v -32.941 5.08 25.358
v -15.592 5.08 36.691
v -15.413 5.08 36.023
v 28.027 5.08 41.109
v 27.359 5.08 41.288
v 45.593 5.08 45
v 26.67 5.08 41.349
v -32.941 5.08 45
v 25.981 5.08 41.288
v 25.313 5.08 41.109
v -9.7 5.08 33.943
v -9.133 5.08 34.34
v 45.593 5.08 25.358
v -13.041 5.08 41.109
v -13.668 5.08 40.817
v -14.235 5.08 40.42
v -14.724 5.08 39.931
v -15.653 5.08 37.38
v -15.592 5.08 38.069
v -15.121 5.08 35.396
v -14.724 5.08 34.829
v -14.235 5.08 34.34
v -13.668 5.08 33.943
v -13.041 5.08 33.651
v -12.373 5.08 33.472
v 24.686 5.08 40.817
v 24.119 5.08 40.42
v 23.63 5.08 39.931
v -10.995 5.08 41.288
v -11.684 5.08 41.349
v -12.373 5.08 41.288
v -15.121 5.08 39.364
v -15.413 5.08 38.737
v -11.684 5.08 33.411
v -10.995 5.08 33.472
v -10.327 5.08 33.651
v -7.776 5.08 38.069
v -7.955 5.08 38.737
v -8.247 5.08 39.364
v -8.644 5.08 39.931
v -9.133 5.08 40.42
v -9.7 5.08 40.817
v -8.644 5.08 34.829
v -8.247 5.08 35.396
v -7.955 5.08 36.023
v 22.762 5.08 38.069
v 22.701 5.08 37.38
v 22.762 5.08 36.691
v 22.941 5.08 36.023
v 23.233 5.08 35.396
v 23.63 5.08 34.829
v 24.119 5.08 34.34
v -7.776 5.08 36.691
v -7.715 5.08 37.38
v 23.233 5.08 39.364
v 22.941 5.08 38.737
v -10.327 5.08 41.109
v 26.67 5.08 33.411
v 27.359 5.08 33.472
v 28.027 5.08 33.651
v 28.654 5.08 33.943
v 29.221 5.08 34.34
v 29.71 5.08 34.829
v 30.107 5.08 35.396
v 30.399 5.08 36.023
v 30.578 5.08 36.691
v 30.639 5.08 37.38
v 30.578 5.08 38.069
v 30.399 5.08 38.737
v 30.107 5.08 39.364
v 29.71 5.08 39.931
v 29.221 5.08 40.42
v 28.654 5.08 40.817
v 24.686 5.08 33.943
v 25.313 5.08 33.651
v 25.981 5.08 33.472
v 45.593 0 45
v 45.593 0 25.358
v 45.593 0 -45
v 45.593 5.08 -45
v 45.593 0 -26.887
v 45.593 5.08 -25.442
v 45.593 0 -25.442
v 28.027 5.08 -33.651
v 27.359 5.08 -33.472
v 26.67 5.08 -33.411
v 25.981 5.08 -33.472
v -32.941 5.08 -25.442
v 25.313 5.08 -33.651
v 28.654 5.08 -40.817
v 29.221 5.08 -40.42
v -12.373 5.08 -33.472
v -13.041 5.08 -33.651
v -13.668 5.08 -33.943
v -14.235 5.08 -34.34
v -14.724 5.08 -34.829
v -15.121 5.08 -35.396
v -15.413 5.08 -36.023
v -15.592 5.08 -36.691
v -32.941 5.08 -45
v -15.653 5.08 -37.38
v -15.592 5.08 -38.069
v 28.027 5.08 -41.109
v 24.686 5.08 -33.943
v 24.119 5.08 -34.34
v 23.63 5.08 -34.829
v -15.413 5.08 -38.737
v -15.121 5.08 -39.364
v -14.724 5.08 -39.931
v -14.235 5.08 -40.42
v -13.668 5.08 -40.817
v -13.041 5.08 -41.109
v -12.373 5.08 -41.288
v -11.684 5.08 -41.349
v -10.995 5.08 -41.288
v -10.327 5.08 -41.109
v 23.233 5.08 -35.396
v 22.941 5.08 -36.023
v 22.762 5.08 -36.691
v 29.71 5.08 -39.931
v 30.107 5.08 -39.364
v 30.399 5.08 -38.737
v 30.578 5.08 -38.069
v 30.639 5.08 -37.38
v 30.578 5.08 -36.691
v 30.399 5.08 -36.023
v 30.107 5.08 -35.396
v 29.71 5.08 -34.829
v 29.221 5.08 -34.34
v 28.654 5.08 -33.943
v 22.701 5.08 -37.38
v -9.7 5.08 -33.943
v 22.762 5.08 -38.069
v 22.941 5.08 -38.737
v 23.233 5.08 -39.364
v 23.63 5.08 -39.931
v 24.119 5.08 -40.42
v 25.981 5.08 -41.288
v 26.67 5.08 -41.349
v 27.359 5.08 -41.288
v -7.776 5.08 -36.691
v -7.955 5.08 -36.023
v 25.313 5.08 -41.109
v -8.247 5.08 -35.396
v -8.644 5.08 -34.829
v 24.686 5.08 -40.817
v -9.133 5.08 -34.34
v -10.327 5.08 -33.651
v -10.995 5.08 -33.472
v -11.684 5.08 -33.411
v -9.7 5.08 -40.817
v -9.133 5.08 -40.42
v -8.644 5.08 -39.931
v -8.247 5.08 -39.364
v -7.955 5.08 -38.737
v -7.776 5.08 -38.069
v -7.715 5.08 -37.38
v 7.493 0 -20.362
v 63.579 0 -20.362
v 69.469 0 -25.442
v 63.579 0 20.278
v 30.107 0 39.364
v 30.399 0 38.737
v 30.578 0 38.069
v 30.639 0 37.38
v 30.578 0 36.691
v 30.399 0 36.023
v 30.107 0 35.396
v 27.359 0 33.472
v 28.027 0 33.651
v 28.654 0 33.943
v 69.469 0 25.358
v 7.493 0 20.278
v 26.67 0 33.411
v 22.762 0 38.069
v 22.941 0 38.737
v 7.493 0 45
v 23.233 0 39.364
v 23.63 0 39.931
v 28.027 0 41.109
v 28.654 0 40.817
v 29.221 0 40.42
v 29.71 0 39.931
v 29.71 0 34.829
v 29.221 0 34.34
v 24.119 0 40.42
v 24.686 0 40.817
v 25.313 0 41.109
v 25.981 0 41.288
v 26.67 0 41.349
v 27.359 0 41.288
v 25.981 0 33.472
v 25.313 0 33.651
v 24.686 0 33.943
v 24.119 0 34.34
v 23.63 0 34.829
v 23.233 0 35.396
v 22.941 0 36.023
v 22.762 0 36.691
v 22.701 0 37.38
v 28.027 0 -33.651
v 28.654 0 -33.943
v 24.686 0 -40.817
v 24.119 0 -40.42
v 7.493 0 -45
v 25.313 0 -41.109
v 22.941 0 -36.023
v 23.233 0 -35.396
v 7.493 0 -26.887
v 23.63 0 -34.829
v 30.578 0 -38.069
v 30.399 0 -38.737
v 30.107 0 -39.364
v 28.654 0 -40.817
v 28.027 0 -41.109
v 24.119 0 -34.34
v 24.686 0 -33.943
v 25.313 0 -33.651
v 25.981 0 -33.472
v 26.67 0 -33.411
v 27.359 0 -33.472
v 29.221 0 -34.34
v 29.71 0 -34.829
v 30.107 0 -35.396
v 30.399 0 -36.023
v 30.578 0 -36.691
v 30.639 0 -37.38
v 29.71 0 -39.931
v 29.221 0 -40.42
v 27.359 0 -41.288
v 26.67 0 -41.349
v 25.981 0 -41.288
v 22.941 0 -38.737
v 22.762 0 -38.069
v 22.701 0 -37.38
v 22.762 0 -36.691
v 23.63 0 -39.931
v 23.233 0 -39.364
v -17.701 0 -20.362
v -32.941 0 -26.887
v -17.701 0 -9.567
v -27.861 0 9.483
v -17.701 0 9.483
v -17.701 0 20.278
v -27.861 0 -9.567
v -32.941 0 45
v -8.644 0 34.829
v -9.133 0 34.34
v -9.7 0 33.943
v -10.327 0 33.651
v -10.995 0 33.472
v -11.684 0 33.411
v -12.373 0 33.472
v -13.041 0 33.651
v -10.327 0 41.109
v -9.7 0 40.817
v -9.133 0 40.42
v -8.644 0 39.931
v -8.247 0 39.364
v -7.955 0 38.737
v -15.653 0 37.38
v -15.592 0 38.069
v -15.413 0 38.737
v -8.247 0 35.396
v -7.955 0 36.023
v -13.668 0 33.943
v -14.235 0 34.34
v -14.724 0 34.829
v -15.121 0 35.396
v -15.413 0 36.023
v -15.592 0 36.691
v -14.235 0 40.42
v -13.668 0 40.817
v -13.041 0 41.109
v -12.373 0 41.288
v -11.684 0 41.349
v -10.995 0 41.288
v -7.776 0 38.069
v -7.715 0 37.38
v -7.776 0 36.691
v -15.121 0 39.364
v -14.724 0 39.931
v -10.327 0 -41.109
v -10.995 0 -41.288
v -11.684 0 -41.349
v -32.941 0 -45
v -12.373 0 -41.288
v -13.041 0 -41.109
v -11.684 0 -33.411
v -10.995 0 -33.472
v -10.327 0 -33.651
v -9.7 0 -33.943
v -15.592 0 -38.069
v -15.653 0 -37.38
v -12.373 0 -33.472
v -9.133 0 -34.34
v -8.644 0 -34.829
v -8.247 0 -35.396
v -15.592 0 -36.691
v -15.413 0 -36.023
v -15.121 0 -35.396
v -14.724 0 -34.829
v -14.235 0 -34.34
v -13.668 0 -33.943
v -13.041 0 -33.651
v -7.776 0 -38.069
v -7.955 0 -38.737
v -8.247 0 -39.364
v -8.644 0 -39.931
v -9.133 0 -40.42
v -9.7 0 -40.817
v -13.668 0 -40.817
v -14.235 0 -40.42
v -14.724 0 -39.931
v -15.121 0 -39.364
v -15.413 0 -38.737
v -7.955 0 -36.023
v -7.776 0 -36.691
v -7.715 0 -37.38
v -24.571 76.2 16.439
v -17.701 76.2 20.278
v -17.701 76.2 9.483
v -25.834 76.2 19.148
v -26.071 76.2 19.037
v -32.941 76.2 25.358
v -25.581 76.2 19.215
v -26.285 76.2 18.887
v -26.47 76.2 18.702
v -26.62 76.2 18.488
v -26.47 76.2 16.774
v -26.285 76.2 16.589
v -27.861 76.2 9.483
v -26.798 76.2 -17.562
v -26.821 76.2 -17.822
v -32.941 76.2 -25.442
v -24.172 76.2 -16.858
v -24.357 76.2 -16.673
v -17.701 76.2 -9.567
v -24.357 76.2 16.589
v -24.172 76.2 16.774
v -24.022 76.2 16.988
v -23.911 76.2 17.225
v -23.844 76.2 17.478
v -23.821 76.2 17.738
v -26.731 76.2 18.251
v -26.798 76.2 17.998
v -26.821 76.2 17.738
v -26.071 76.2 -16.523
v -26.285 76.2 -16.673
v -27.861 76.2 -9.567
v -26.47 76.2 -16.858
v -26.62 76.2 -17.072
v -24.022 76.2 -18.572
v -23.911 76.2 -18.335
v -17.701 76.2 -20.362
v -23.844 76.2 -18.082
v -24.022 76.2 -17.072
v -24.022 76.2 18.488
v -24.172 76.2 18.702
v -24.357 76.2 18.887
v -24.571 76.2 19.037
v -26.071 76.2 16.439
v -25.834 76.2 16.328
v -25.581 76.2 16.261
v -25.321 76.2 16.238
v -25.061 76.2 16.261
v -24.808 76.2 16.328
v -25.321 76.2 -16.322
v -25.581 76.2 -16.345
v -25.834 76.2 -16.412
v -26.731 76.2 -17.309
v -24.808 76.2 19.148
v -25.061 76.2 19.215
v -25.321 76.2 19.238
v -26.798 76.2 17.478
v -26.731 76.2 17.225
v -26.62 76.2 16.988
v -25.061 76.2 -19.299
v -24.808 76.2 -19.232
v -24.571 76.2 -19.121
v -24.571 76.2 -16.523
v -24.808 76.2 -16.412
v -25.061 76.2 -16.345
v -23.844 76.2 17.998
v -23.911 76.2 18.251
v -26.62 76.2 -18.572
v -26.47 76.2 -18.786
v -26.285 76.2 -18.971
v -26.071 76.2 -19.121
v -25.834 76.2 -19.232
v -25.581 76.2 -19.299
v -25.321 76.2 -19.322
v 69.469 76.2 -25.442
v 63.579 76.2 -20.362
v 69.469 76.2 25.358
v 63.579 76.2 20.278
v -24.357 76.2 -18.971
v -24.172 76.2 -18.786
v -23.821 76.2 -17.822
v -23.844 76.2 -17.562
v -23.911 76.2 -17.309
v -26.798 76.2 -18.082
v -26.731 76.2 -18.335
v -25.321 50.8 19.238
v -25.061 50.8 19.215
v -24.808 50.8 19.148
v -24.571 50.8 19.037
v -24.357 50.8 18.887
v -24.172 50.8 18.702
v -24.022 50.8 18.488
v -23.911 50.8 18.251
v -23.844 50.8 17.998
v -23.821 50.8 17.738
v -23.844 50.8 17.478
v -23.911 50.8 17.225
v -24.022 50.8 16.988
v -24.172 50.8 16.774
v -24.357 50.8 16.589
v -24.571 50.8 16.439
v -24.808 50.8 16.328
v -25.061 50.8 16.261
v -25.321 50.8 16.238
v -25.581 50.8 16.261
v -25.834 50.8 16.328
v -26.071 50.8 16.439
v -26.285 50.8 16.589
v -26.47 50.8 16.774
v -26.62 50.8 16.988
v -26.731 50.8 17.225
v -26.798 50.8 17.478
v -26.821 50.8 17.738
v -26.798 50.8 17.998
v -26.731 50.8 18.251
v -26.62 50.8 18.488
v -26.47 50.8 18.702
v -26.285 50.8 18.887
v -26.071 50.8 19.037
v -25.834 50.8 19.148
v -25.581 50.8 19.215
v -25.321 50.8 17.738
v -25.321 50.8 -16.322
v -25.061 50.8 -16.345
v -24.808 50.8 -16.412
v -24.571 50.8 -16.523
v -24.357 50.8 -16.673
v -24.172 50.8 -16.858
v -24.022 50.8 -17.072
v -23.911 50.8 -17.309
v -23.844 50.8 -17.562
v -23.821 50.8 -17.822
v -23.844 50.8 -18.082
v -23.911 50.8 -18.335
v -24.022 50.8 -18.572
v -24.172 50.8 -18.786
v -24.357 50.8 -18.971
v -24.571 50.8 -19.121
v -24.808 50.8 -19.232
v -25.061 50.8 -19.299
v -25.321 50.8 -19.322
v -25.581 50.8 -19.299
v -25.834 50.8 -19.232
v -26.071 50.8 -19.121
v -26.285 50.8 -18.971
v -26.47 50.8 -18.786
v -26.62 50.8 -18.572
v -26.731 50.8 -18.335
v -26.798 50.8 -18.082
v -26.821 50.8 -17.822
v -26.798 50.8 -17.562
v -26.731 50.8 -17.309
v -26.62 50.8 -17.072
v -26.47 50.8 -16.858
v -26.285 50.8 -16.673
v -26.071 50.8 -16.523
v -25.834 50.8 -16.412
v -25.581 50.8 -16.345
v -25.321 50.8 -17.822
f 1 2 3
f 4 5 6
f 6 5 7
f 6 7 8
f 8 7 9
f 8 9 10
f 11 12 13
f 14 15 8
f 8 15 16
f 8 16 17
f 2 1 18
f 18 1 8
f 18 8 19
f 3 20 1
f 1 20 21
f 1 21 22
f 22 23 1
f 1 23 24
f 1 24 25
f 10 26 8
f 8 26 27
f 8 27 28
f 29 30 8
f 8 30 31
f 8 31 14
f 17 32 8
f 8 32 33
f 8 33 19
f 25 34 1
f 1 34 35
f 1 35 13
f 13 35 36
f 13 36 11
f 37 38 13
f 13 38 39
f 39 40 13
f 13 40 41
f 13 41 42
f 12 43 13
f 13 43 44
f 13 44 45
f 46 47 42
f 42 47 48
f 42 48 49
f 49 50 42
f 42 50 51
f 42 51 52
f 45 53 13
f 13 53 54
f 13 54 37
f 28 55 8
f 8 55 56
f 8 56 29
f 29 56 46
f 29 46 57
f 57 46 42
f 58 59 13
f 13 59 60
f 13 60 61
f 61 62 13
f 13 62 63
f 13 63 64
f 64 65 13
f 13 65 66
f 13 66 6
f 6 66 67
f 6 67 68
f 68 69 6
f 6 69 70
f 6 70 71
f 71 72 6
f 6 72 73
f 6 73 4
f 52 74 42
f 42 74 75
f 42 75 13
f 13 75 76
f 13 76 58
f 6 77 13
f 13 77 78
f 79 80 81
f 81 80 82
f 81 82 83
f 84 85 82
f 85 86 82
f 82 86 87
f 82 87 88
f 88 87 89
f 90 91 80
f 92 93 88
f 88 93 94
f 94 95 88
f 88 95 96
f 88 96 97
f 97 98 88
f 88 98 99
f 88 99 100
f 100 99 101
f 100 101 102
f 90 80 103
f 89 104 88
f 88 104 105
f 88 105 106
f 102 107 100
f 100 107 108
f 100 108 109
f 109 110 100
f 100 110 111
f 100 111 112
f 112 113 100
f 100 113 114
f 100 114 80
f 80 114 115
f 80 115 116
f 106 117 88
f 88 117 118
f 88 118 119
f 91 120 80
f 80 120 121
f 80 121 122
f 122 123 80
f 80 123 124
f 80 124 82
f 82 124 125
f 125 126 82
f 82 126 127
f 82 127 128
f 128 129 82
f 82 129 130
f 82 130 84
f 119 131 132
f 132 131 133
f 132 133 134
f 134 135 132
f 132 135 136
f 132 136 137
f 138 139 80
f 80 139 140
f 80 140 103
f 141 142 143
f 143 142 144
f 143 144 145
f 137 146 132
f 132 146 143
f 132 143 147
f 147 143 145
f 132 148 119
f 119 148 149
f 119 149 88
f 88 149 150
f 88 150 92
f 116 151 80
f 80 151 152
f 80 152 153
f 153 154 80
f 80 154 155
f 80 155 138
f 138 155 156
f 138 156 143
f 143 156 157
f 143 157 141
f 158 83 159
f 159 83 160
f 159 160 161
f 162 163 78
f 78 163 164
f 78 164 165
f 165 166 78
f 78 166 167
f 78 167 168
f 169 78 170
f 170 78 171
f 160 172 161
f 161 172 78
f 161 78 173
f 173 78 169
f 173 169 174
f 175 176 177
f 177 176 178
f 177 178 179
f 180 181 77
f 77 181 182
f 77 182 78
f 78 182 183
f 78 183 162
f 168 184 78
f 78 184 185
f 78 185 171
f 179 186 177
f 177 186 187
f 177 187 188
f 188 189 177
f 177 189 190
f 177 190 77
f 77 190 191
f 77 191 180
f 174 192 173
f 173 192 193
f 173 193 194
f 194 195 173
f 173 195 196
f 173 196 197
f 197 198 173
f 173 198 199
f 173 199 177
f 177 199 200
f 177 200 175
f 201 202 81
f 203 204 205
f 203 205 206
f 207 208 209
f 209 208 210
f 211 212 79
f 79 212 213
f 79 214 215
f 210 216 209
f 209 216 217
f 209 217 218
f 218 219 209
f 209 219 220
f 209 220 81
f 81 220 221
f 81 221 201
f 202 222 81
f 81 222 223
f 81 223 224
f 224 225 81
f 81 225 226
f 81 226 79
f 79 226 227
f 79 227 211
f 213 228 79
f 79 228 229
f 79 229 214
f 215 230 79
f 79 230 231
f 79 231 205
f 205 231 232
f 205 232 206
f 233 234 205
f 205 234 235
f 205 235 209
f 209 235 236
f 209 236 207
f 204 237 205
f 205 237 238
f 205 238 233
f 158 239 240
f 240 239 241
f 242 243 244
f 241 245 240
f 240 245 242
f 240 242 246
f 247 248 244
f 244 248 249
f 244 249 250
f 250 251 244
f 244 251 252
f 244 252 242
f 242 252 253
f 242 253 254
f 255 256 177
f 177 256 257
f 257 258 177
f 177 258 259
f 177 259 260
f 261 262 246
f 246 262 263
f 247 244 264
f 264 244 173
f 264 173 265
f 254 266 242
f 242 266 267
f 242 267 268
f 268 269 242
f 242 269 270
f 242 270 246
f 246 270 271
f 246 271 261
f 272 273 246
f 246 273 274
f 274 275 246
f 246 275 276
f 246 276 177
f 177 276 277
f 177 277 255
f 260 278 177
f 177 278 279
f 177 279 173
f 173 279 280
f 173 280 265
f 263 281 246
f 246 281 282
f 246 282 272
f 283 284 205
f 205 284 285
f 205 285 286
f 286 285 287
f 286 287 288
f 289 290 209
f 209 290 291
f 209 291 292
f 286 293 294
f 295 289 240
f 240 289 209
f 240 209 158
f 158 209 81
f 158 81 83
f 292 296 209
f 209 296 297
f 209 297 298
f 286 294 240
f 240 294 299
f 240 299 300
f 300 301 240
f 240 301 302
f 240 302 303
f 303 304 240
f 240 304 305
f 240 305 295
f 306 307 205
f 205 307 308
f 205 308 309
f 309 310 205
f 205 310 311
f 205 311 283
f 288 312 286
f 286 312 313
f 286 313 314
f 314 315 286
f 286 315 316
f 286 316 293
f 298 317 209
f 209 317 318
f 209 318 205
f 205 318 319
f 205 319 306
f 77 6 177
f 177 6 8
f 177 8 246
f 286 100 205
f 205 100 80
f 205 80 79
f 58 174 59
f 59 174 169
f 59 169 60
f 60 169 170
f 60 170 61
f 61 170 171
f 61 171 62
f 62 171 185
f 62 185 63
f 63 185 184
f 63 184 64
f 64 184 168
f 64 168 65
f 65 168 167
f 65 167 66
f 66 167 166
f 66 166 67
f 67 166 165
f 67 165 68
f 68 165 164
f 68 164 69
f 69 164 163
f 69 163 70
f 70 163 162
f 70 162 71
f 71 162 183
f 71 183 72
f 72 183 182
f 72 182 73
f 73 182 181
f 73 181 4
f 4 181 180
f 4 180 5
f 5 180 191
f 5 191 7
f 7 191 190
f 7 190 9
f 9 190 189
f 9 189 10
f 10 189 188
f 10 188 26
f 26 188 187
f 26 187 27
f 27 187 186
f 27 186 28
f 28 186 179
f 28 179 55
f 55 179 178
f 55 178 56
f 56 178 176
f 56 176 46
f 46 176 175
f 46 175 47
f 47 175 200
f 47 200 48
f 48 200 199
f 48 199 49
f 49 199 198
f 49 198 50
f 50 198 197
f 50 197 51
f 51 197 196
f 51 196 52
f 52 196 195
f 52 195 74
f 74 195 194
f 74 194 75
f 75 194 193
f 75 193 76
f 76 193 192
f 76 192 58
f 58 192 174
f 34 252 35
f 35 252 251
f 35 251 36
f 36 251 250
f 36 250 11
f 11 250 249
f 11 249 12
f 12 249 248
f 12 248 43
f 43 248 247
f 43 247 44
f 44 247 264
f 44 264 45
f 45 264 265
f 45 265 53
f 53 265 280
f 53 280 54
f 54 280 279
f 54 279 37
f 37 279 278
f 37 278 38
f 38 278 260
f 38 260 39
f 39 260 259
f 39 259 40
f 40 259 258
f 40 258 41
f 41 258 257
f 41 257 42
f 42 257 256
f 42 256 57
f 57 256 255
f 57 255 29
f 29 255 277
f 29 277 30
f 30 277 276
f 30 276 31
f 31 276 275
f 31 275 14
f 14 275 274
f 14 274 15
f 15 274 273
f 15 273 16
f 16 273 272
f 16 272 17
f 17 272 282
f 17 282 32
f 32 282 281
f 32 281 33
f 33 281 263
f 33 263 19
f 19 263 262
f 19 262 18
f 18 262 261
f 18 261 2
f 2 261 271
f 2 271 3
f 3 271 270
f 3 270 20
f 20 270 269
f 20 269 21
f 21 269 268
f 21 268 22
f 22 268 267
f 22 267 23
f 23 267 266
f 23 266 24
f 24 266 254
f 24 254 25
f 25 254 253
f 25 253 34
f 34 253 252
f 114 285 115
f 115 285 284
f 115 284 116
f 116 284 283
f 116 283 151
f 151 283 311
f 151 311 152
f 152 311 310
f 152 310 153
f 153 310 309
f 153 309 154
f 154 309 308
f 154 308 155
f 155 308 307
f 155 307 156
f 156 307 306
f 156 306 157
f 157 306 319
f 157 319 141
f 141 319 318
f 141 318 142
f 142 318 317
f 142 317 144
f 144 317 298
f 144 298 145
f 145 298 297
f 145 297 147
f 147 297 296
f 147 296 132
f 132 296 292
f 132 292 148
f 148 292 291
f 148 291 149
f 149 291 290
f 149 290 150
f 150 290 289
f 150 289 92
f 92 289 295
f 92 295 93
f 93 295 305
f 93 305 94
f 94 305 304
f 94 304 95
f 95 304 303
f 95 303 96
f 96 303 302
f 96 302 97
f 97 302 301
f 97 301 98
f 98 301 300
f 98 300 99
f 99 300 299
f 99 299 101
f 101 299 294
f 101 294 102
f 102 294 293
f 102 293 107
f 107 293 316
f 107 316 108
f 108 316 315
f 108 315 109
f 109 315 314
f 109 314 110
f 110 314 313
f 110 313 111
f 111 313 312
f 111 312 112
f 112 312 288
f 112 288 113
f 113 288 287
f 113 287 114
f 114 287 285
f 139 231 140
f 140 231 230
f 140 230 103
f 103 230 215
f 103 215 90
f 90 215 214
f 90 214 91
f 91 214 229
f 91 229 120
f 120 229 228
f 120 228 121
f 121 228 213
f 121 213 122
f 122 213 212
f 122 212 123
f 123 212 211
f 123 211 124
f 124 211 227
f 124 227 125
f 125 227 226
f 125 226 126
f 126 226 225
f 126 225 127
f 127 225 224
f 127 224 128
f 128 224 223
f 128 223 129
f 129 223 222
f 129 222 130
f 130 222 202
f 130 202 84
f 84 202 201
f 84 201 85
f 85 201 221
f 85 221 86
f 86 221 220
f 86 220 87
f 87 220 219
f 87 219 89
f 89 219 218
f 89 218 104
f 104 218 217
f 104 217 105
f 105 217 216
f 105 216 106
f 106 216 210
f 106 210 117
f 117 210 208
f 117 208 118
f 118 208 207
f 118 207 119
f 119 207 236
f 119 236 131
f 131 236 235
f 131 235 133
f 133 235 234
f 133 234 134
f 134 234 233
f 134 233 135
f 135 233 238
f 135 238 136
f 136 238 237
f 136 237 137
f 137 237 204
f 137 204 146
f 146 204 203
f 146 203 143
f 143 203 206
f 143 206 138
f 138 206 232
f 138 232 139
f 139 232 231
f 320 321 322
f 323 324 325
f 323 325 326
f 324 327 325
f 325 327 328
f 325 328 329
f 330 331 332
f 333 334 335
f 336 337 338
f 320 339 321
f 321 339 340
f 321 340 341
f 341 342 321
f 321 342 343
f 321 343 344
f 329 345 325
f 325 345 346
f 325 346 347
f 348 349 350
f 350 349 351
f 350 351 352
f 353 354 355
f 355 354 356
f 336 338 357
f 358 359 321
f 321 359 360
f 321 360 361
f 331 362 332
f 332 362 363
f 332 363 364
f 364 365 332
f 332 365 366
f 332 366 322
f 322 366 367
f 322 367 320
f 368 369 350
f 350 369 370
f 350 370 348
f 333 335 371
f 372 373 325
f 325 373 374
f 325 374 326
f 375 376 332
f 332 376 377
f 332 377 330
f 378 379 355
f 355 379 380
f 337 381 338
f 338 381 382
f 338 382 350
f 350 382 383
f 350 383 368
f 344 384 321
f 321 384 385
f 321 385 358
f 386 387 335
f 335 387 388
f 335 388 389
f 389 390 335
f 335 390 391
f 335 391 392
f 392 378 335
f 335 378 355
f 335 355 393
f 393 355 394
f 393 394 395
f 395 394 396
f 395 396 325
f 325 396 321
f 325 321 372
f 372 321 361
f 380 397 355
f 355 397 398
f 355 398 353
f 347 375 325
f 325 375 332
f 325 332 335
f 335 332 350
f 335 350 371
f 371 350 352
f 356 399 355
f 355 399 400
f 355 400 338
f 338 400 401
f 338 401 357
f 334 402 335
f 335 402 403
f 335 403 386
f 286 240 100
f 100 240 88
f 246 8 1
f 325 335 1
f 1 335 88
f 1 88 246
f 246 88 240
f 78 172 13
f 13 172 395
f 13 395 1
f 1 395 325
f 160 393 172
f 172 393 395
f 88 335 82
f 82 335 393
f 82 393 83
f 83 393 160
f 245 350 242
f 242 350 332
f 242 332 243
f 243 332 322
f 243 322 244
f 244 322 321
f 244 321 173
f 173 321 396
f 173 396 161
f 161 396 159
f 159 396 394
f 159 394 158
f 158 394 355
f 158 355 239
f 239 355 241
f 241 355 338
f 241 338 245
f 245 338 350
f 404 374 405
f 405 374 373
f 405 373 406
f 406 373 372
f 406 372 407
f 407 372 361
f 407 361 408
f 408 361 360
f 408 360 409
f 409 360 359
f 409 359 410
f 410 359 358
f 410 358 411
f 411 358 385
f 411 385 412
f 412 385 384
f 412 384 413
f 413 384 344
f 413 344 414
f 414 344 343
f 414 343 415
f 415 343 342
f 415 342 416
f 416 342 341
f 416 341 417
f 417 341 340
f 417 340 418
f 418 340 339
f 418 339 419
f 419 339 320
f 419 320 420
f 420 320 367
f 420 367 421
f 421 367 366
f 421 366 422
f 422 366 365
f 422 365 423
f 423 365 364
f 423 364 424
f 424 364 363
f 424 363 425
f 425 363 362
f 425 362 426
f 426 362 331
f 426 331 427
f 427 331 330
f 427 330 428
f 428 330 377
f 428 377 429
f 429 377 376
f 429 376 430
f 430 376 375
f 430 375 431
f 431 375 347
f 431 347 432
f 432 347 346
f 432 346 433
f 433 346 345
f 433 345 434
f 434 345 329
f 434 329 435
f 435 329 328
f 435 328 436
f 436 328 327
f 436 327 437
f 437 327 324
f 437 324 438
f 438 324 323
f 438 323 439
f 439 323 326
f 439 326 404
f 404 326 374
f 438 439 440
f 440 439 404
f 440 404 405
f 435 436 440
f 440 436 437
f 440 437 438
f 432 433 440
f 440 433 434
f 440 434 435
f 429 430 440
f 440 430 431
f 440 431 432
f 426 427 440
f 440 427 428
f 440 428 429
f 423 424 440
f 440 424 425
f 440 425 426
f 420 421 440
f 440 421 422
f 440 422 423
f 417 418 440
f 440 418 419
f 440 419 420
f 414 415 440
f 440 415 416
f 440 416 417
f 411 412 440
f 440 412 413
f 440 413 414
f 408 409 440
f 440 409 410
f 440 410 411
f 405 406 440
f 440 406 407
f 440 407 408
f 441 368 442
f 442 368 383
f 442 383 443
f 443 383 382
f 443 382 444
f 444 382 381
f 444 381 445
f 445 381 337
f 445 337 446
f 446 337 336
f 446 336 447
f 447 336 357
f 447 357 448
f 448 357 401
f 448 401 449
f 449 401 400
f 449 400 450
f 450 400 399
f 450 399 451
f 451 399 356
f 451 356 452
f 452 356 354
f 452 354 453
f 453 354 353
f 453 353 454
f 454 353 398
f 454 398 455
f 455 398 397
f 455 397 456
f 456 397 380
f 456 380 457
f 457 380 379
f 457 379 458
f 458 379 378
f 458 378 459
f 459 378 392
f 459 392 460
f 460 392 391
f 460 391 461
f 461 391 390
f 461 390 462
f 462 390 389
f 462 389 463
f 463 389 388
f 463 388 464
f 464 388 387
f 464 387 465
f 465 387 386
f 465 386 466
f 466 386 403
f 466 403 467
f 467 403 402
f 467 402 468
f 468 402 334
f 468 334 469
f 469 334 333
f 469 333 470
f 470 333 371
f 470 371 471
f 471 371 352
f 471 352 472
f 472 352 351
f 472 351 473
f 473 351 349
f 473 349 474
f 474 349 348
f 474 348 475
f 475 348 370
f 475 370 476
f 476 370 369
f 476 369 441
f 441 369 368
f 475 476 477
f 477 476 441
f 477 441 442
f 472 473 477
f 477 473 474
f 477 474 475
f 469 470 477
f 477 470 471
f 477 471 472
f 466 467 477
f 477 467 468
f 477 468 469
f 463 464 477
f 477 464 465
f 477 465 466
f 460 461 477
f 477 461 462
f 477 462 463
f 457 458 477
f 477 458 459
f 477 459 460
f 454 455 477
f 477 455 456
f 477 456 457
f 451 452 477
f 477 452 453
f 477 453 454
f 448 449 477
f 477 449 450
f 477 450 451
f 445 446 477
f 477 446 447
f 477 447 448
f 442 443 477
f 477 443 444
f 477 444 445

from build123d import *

# Parameters (mm, degrees)
SKETCH1_W                    = 91.186
SKETCH1_H                    = 90
SKETCH1_R                    = 3.96875
MOUNTING_PLATE_EXTRUDE_DEPTH = 5.08
SKETCH3_W                    = 102.41
SKETCH3_H                    = 50.8
MAIN_EXTRUDE_DEPTH           = 71.12
SKETCH4_W                    = 23.876
SKETCH4_H                    = 50.8
BOSS_EXTRUDE3_DEPTH          = 5.08
SKETCH5_R                    = 1.5
CUT_EXTRUDE1_DEPTH           = 25.4
SKETCH7_W                    = 12.652
SKETCH7_H                    = 90
CUT_EXTRUDE3_DEPTH           = 5.08
CUT_EXTRUDE4_DEPTH           = 5.08


with BuildPart() as part:
    # Sketch1 → Mounting plate extrude (new body)
    with BuildSketch(Plane(origin=(0, 0, 0), x_dir=(1, 0, 0), z_dir=(0, 1, 0))):
        Rectangle(SKETCH1_W, SKETCH1_H)
        with Locations((26.67, -37.38)):
            Circle(SKETCH1_R, mode=Mode.SUBTRACT)
        with Locations((-11.684, -37.38)):
            Circle(SKETCH1_R, mode=Mode.SUBTRACT)
        with Locations((-11.684, 37.38)):
            Circle(SKETCH1_R, mode=Mode.SUBTRACT)
        with Locations((26.67, 37.38)):
            Circle(SKETCH1_R, mode=Mode.SUBTRACT)
    extrude(amount=MOUNTING_PLATE_EXTRUDE_DEPTH)

    # Sketch3 → Main extrude (add)
    with BuildSketch(Plane(origin=(0, 5.08, 0), x_dir=(1, 0, 0), z_dir=(0, 1, 0))):
        with Locations((18.264, 0.042)):
            Rectangle(SKETCH3_W, SKETCH3_H)
        Polygon((-17.701, 9.567), (-17.701, 20.362), (63.579, 20.362), (63.579, 9.567), (63.579, -9.483), (63.579, -20.278), (-17.701, -20.278), (-17.701, -9.483), (-27.861, -9.483), (-27.861, 9.567), align=None, mode=Mode.SUBTRACT)
    extrude(amount=MAIN_EXTRUDE_DEPTH)

    # Sketch4 → Boss-Extrude3 (add)
    with BuildSketch(Plane.XZ.offset(-5.08)):
        with Locations((57.531, -0.042)):
            Rectangle(SKETCH4_W, SKETCH4_H)
    extrude(amount=BOSS_EXTRUDE3_DEPTH)

    # Sketch5 → Cut-Extrude1 (cut)
    with BuildSketch(Plane(origin=(0, 76.2, 0), x_dir=(1, 0, 0), z_dir=(0, 1, 0))):
        with Locations((-25.321, 17.822)):
            Circle(SKETCH5_R)
        with Locations((-25.321, -17.738)):
            Circle(SKETCH5_R)
    extrude(amount=-CUT_EXTRUDE1_DEPTH, mode=Mode.SUBTRACT)

    # Sketch7 → Cut-Extrude3 (cut)
    with BuildSketch(Plane(origin=(0, 5.08, 0), x_dir=(1, 0, 0), z_dir=(0, 1, 0))):
        with Locations((-39.267, 0)):
            Rectangle(SKETCH7_W, SKETCH7_H)
    extrude(amount=-CUT_EXTRUDE3_DEPTH, mode=Mode.SUBTRACT)

    # Sketch8 → Cut-Extrude4 (cut)
    with BuildSketch(Plane(origin=(0, 5.08, 0), x_dir=(1, 0, 0), z_dir=(0, 1, 0))):
        Polygon((-17.701, 20.362), (-17.701, 9.567), (-27.861, 9.567), (-27.861, -9.483), (-17.701, -9.483), (-17.701, -20.278), (63.579, -20.278), (63.579, 20.362), align=None)
    extrude(amount=-CUT_EXTRUDE4_DEPTH, mode=Mode.SUBTRACT)


solid = part.part
